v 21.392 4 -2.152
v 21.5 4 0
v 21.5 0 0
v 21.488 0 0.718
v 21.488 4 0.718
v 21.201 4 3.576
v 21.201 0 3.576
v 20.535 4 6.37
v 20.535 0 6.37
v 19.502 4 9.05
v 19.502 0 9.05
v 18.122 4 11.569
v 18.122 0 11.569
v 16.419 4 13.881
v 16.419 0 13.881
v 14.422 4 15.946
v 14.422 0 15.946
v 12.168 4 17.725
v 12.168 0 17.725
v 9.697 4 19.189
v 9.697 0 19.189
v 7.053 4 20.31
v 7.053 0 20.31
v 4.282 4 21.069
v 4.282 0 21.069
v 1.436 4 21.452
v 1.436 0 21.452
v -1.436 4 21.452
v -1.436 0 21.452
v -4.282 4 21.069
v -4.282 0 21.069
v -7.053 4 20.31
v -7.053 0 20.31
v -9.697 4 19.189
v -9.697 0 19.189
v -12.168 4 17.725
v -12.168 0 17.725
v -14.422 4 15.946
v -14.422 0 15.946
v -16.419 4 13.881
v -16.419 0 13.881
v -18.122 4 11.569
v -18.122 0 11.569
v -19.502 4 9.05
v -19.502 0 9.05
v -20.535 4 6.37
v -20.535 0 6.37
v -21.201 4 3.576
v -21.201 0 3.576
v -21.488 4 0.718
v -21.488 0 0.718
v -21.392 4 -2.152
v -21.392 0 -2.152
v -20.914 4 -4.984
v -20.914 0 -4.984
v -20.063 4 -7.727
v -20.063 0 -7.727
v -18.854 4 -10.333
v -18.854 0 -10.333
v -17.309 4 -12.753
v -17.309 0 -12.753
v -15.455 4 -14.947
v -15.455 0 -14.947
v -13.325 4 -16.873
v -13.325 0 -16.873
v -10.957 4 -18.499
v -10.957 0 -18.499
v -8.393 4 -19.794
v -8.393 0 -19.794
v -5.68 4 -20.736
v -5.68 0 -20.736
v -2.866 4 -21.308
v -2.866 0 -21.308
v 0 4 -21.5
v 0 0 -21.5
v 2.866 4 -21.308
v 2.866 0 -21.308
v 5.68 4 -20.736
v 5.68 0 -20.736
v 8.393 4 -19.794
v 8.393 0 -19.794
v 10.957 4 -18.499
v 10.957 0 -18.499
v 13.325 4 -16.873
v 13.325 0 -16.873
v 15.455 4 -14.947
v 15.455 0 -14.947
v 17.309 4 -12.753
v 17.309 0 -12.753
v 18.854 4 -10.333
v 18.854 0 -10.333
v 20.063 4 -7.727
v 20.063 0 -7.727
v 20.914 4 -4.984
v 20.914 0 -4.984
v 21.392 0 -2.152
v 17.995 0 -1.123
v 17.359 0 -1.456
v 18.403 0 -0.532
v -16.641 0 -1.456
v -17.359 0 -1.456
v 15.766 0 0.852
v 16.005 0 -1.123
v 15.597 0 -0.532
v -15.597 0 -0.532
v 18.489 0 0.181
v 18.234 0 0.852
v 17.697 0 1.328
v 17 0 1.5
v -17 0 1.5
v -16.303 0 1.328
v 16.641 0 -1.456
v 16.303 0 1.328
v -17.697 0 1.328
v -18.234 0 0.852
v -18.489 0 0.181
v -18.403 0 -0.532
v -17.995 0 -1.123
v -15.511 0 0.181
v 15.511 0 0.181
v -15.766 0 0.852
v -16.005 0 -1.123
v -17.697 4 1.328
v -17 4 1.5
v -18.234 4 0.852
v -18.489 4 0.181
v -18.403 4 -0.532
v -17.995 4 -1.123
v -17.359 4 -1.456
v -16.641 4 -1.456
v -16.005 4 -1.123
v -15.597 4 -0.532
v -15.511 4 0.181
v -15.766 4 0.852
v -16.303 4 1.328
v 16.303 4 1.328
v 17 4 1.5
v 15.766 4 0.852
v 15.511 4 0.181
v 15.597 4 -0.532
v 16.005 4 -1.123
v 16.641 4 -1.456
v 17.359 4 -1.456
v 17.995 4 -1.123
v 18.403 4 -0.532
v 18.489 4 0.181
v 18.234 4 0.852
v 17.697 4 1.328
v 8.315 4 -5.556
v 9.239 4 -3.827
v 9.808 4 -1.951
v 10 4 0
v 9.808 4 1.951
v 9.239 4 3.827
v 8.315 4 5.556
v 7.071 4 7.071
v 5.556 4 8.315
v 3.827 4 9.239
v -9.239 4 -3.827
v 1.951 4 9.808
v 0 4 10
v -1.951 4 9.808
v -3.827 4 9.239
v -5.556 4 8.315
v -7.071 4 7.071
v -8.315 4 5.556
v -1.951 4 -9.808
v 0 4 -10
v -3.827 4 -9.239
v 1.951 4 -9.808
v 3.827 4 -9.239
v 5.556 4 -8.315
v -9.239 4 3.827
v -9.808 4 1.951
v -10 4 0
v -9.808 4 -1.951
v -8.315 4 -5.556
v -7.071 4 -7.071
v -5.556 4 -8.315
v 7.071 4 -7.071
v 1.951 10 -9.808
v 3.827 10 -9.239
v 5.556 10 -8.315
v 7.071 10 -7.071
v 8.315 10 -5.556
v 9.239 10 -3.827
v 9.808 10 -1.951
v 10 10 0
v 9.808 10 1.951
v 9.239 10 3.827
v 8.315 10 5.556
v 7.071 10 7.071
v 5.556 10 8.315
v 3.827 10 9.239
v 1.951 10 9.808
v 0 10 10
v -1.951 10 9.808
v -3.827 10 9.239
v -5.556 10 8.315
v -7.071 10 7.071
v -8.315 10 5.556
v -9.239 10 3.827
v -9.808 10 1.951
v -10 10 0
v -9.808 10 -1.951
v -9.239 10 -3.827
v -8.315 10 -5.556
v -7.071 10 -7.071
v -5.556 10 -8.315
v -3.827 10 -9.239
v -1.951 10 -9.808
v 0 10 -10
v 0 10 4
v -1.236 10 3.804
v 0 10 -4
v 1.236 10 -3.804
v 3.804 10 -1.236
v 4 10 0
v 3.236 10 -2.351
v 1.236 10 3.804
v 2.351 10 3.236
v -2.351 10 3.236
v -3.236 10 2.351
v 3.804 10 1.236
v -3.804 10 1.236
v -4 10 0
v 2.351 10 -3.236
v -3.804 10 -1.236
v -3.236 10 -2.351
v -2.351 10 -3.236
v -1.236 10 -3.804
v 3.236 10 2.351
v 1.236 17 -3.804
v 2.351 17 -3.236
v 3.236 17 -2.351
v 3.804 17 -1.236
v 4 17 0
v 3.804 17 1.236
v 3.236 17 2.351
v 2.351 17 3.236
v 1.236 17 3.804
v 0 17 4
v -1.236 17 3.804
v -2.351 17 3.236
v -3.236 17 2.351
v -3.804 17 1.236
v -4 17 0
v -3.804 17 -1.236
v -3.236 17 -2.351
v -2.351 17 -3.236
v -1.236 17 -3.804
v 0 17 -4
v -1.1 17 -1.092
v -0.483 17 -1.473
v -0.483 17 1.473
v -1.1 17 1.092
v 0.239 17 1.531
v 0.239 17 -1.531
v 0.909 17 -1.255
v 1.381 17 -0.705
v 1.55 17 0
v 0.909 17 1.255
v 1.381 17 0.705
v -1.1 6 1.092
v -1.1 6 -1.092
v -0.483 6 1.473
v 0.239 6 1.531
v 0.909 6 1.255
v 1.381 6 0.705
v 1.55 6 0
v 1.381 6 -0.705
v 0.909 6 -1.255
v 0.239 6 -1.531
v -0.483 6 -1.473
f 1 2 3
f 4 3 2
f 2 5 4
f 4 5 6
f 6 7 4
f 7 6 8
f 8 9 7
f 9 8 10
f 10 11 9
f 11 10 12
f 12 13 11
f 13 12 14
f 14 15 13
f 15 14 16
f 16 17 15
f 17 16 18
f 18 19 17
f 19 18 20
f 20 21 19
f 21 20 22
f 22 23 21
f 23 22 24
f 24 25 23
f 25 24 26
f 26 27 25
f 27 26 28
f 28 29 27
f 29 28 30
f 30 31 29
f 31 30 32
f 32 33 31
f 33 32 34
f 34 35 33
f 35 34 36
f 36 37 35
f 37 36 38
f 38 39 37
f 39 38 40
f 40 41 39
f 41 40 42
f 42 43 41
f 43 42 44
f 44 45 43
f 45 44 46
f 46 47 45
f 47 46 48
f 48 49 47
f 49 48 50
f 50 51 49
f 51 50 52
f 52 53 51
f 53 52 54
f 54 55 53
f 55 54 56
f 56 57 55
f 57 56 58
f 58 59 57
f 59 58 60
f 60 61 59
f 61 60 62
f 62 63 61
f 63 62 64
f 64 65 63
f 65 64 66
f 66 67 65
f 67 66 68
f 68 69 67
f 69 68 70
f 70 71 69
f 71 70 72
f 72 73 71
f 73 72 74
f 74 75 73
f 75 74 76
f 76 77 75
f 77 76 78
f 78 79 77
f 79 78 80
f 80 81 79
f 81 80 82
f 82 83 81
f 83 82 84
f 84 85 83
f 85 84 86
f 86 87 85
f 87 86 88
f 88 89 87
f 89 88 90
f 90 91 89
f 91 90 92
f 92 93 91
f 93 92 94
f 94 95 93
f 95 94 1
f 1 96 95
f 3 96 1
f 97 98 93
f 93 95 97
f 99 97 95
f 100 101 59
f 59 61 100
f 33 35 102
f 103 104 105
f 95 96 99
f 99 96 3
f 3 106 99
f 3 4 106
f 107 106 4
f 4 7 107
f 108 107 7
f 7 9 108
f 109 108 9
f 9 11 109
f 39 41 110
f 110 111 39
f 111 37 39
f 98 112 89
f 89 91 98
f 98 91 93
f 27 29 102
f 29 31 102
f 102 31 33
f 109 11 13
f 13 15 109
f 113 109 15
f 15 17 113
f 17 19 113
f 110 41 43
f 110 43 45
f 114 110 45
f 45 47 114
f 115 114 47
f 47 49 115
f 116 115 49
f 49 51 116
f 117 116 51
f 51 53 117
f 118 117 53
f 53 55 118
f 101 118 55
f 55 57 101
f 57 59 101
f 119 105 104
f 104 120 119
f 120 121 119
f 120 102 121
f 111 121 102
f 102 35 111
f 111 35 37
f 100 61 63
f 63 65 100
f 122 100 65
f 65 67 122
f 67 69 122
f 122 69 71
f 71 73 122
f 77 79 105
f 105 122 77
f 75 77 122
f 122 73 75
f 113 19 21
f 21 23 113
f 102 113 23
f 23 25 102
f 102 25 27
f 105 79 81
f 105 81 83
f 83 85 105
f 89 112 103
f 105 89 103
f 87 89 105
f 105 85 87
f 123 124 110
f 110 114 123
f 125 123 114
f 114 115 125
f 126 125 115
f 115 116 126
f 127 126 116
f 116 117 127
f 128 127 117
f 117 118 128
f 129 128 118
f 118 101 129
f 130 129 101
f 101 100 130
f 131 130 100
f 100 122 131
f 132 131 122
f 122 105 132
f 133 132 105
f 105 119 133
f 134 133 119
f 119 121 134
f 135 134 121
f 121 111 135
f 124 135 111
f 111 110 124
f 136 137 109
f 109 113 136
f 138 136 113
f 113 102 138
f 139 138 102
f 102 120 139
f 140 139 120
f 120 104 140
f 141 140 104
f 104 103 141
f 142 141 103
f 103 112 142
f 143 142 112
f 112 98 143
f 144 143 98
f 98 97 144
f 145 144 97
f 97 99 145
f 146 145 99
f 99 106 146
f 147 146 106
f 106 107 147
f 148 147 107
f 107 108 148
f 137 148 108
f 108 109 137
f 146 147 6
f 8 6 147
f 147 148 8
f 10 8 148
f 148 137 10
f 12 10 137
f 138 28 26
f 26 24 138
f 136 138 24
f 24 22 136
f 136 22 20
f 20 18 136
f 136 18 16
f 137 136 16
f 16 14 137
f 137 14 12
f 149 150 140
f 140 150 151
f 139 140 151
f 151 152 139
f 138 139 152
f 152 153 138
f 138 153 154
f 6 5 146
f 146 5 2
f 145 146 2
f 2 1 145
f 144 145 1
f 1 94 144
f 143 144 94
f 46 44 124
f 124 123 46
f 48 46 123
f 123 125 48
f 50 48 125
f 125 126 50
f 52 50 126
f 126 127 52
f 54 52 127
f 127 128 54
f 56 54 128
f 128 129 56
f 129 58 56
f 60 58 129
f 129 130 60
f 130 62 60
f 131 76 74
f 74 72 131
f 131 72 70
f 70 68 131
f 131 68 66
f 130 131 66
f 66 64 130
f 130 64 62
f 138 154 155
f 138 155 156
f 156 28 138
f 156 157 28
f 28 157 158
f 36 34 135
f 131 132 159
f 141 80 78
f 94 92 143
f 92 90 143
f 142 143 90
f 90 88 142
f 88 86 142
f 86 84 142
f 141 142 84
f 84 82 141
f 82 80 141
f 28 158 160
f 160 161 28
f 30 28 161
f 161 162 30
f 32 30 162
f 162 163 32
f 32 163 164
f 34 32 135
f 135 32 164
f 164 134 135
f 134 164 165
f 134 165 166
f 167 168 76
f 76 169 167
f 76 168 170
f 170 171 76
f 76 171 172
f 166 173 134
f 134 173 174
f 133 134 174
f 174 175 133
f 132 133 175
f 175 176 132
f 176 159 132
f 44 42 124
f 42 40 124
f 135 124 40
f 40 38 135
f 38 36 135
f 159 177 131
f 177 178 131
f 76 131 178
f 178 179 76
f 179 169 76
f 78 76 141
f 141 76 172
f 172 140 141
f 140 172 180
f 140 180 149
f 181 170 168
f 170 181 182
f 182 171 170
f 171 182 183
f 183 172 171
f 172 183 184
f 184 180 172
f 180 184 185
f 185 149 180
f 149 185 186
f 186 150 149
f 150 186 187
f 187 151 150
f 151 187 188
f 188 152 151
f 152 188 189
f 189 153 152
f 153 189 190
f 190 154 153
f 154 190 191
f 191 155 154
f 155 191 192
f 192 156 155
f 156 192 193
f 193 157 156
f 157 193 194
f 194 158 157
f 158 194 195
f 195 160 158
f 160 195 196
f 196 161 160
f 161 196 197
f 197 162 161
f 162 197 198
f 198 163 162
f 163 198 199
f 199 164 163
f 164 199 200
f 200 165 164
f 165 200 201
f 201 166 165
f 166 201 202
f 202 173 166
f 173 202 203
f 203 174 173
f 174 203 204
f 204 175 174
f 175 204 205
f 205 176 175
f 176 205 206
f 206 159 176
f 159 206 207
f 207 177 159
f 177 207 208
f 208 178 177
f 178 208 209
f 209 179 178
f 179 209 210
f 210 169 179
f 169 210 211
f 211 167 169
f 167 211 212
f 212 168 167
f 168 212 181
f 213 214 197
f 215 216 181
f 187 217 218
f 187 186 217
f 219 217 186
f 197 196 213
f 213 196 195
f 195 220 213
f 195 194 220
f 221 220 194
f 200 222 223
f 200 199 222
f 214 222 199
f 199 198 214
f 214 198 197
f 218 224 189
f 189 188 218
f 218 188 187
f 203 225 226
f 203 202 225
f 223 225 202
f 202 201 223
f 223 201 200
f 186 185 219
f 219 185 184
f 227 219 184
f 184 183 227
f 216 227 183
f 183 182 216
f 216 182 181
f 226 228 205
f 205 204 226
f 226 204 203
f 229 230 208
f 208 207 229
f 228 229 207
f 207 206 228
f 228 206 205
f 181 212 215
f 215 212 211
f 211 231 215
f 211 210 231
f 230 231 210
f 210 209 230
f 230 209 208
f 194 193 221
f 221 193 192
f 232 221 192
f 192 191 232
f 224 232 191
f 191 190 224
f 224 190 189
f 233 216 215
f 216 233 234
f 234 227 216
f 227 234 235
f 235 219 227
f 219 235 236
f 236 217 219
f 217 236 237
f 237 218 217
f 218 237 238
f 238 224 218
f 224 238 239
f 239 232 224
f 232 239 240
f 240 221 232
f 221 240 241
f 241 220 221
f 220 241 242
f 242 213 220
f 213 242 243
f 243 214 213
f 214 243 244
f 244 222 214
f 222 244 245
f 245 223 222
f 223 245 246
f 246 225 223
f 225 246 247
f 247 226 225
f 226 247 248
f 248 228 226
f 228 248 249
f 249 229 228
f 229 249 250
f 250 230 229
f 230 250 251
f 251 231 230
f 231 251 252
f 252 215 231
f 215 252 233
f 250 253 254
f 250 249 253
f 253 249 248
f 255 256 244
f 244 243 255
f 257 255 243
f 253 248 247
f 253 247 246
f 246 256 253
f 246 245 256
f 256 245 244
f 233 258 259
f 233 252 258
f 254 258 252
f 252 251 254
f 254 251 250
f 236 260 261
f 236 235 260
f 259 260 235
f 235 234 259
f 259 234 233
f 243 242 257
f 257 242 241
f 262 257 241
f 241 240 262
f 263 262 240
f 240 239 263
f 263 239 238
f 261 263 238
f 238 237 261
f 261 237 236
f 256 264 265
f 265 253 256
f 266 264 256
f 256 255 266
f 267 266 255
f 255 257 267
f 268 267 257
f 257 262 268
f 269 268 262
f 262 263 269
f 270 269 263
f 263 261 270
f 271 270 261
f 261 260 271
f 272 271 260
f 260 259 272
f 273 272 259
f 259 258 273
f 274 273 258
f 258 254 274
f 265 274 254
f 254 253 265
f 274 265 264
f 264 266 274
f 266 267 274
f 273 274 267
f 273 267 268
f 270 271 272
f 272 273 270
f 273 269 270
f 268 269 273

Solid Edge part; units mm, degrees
sketch "Sketch1" plane through (0, 0, 0) normal (0, -1, 0) x (1, 0, 0)
  circle A0 centre (0, 0) radius 21.5
extrude "Protrusion1" add sketch "Sketch1" against normal blind 4
hole "Hole_1" at (-17, 4, 0) direction (0, -1, 0) diameter 3 end through all
hole "Hole1" at (17, 4, 0) direction (0, -1, 0) diameter 3 end through all
sketch "Sketch2" plane through (0, 4, 0) normal (0, 1, 0) x (0, 0, -1)
  circle A0 centre (0, 0) radius 10
extrude "ExtrudedProtrusion_2" add sketch "Sketch2" along normal blind 6
sketch "Sketch3" plane through (0, 10, 0) normal (0, 1, 0) x (-1, 0, 0)
  circle A0 centre (0, 0) radius 4
extrude "ExtrudedProtrusion_3" add sketch "Sketch3" along normal blind 7
sketch "Sketch4" plane through (0, 17, 0) normal (0, 1, 0) x (0, 0, -1)
  line L0 (-1.092, 1.1) -> (1.092, 1.1)
  arc A0 (1.092, 1.1) -> (-1.092, 1.1) centre (0, 0) cw
extrude "ExtrudedCutout_1" cut sketch "Sketch4" against normal blind 11
